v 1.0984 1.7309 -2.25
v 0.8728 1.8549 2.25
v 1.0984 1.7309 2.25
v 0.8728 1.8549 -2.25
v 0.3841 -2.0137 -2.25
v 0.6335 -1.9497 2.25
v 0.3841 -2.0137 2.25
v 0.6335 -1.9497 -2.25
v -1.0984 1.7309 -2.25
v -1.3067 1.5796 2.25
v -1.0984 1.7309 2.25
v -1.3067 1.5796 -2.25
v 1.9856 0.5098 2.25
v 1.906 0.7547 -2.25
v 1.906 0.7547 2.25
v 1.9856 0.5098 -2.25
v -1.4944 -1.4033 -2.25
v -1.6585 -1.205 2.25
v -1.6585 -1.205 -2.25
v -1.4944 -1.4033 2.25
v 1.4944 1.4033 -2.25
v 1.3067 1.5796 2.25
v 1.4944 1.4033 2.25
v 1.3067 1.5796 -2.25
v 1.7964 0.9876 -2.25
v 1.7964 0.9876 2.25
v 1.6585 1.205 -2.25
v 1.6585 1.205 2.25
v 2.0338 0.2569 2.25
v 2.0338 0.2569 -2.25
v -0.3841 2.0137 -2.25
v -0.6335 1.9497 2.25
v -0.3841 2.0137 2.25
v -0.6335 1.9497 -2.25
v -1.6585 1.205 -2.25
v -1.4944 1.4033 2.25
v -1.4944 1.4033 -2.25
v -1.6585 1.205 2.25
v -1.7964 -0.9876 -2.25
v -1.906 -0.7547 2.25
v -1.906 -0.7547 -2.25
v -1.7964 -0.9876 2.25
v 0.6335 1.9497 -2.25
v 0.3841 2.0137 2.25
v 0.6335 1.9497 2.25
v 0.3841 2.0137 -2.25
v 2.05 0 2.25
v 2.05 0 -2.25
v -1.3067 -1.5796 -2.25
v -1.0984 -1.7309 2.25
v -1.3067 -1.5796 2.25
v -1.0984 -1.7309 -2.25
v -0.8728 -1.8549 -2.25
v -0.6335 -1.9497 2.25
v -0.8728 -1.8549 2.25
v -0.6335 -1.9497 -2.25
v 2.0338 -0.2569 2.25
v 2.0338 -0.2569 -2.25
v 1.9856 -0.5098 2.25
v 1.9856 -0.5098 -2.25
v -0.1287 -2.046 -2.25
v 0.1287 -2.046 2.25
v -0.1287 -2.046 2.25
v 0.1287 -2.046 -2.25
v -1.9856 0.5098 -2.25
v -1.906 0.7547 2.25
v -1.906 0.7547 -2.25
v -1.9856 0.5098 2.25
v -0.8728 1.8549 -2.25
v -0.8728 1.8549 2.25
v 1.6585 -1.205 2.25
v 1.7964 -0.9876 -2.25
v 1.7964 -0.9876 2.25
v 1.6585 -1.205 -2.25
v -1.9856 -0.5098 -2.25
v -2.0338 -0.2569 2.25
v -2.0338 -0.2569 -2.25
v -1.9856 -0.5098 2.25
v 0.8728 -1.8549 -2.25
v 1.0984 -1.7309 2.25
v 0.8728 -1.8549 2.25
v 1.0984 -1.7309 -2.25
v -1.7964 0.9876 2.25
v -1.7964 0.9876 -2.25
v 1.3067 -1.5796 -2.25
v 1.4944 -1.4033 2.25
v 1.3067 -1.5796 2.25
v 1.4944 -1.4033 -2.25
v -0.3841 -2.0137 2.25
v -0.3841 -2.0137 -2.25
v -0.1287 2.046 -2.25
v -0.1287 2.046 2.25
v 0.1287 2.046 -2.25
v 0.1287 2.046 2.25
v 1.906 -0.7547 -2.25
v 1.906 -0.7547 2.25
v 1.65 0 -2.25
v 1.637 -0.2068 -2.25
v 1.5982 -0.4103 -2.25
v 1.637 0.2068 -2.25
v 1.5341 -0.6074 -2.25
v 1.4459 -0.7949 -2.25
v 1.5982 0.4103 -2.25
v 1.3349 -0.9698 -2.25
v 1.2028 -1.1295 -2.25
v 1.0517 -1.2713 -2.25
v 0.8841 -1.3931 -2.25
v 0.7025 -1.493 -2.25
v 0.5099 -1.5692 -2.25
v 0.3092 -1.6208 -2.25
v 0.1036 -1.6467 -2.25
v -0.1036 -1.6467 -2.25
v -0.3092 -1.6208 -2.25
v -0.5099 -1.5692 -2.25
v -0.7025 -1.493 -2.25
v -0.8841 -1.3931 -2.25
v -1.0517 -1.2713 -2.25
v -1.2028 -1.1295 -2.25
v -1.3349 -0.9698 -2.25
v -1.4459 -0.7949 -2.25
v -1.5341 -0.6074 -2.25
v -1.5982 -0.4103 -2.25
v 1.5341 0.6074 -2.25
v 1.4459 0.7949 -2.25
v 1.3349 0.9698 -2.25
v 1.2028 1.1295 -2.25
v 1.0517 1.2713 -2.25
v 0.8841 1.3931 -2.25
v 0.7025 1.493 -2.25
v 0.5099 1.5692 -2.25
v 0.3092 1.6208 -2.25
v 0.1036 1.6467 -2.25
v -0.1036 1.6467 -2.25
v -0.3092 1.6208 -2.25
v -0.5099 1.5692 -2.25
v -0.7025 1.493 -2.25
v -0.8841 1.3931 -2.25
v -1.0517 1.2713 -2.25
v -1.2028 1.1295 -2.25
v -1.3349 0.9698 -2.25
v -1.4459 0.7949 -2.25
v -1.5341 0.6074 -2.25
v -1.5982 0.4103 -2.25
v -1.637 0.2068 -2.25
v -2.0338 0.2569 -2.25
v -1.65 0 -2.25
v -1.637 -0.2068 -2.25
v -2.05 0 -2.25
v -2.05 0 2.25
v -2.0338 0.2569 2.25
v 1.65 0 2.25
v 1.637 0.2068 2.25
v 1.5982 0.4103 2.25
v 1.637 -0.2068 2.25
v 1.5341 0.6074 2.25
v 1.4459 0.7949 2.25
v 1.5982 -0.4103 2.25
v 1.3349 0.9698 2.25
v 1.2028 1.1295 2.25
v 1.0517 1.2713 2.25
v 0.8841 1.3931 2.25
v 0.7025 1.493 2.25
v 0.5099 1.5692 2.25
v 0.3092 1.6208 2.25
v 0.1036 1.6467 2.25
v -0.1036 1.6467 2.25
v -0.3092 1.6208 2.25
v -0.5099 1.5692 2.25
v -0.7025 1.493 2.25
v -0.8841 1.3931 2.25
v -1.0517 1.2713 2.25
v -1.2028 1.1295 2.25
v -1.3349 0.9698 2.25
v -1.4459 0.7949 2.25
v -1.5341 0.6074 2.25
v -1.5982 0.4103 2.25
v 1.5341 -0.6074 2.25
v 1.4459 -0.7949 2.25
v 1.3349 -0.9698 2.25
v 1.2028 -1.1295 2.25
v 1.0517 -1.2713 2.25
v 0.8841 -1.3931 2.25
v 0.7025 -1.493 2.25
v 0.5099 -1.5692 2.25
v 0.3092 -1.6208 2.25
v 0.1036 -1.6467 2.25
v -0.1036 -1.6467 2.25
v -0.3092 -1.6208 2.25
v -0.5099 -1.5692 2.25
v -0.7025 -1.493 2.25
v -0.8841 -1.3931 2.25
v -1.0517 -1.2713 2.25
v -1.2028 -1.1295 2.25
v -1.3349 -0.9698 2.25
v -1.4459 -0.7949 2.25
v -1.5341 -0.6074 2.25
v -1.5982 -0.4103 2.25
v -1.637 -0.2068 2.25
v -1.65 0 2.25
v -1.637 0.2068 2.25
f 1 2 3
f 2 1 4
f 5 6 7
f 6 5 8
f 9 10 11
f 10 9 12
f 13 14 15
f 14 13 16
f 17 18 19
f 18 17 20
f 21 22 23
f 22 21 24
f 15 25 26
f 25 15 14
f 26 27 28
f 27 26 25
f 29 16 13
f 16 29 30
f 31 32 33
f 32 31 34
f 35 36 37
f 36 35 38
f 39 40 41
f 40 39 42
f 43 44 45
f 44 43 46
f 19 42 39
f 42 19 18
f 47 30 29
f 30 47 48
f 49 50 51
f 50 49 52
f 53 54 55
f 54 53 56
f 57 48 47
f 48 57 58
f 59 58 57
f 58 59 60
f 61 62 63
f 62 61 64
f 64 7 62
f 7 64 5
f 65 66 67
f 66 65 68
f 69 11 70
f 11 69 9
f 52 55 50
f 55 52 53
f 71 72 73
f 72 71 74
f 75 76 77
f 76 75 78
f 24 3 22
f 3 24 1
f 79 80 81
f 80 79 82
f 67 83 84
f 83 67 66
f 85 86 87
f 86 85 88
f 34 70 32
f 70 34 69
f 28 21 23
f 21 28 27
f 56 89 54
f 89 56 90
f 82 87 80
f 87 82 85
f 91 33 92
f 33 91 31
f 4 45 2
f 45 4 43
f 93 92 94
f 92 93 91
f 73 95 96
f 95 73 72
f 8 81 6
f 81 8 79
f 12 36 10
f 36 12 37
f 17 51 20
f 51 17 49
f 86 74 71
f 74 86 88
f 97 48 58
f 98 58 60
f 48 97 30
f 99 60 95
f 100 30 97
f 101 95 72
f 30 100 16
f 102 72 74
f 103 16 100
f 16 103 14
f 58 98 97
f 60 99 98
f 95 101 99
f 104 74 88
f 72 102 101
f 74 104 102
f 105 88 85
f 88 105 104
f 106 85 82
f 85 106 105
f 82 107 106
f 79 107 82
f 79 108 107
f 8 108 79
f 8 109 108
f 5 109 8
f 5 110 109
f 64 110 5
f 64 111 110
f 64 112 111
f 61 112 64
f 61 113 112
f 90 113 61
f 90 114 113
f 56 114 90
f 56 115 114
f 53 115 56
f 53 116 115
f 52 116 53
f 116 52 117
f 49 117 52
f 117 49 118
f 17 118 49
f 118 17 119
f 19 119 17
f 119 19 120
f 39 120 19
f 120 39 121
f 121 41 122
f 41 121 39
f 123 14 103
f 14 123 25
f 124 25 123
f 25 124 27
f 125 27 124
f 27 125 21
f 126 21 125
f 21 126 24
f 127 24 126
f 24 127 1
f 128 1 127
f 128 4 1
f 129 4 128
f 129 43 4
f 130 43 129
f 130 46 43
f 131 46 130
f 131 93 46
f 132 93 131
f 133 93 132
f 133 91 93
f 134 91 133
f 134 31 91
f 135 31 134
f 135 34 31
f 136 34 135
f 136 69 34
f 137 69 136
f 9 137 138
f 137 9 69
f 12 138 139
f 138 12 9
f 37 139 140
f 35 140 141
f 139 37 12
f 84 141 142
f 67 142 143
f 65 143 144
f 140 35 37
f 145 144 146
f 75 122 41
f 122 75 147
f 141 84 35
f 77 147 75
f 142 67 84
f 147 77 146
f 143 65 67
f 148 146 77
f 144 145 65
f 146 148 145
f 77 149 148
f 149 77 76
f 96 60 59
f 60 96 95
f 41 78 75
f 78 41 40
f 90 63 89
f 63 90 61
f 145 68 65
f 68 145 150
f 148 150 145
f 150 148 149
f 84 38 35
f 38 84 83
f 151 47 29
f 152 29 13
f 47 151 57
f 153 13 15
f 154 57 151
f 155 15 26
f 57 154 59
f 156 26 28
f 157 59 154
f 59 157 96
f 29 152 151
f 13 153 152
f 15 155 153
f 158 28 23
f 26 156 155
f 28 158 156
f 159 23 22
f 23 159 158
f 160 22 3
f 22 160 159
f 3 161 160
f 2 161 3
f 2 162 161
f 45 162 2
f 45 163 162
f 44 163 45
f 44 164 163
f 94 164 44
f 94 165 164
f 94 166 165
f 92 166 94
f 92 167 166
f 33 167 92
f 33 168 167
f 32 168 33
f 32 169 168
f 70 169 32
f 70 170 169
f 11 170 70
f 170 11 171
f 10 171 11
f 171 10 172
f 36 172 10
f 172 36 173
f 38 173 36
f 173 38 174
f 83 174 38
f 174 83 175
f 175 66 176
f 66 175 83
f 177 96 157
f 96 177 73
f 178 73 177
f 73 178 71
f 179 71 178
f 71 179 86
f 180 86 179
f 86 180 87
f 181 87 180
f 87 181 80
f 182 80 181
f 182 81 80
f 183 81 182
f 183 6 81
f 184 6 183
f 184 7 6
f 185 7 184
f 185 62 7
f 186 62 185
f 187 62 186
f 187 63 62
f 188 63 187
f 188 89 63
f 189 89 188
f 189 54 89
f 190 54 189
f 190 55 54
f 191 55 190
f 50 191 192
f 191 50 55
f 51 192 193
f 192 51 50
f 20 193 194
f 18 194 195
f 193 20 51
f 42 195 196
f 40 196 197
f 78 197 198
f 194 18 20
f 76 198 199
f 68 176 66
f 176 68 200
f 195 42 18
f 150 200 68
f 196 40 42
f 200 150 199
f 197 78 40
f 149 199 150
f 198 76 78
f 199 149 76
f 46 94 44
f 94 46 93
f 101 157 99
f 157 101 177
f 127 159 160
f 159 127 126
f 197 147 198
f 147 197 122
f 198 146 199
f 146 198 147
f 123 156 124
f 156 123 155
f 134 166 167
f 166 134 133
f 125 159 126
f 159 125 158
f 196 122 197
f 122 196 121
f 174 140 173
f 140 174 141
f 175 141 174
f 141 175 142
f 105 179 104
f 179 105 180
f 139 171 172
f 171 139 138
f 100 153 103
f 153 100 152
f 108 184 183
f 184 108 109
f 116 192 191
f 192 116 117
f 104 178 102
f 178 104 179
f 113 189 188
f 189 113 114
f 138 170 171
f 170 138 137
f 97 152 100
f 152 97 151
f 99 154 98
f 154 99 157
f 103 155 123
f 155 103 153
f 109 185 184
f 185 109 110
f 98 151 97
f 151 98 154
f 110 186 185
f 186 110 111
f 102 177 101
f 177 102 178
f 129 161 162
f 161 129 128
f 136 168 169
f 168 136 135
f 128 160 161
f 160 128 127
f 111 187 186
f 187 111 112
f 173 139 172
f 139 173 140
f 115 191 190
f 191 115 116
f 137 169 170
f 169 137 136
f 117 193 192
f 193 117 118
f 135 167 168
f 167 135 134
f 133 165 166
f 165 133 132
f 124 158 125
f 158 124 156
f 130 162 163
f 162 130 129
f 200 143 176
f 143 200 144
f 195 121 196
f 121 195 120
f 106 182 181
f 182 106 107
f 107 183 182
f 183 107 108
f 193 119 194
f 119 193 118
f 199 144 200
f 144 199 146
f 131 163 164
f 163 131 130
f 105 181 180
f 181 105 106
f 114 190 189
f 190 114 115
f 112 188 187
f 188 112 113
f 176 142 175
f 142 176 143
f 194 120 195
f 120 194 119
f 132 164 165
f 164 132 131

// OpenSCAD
difference(){
  cylinder(d=4.1, h=4.5, $fn=50,center=true);
  cylinder(d=3.3, h=7, $fn=50,center=true);
}
